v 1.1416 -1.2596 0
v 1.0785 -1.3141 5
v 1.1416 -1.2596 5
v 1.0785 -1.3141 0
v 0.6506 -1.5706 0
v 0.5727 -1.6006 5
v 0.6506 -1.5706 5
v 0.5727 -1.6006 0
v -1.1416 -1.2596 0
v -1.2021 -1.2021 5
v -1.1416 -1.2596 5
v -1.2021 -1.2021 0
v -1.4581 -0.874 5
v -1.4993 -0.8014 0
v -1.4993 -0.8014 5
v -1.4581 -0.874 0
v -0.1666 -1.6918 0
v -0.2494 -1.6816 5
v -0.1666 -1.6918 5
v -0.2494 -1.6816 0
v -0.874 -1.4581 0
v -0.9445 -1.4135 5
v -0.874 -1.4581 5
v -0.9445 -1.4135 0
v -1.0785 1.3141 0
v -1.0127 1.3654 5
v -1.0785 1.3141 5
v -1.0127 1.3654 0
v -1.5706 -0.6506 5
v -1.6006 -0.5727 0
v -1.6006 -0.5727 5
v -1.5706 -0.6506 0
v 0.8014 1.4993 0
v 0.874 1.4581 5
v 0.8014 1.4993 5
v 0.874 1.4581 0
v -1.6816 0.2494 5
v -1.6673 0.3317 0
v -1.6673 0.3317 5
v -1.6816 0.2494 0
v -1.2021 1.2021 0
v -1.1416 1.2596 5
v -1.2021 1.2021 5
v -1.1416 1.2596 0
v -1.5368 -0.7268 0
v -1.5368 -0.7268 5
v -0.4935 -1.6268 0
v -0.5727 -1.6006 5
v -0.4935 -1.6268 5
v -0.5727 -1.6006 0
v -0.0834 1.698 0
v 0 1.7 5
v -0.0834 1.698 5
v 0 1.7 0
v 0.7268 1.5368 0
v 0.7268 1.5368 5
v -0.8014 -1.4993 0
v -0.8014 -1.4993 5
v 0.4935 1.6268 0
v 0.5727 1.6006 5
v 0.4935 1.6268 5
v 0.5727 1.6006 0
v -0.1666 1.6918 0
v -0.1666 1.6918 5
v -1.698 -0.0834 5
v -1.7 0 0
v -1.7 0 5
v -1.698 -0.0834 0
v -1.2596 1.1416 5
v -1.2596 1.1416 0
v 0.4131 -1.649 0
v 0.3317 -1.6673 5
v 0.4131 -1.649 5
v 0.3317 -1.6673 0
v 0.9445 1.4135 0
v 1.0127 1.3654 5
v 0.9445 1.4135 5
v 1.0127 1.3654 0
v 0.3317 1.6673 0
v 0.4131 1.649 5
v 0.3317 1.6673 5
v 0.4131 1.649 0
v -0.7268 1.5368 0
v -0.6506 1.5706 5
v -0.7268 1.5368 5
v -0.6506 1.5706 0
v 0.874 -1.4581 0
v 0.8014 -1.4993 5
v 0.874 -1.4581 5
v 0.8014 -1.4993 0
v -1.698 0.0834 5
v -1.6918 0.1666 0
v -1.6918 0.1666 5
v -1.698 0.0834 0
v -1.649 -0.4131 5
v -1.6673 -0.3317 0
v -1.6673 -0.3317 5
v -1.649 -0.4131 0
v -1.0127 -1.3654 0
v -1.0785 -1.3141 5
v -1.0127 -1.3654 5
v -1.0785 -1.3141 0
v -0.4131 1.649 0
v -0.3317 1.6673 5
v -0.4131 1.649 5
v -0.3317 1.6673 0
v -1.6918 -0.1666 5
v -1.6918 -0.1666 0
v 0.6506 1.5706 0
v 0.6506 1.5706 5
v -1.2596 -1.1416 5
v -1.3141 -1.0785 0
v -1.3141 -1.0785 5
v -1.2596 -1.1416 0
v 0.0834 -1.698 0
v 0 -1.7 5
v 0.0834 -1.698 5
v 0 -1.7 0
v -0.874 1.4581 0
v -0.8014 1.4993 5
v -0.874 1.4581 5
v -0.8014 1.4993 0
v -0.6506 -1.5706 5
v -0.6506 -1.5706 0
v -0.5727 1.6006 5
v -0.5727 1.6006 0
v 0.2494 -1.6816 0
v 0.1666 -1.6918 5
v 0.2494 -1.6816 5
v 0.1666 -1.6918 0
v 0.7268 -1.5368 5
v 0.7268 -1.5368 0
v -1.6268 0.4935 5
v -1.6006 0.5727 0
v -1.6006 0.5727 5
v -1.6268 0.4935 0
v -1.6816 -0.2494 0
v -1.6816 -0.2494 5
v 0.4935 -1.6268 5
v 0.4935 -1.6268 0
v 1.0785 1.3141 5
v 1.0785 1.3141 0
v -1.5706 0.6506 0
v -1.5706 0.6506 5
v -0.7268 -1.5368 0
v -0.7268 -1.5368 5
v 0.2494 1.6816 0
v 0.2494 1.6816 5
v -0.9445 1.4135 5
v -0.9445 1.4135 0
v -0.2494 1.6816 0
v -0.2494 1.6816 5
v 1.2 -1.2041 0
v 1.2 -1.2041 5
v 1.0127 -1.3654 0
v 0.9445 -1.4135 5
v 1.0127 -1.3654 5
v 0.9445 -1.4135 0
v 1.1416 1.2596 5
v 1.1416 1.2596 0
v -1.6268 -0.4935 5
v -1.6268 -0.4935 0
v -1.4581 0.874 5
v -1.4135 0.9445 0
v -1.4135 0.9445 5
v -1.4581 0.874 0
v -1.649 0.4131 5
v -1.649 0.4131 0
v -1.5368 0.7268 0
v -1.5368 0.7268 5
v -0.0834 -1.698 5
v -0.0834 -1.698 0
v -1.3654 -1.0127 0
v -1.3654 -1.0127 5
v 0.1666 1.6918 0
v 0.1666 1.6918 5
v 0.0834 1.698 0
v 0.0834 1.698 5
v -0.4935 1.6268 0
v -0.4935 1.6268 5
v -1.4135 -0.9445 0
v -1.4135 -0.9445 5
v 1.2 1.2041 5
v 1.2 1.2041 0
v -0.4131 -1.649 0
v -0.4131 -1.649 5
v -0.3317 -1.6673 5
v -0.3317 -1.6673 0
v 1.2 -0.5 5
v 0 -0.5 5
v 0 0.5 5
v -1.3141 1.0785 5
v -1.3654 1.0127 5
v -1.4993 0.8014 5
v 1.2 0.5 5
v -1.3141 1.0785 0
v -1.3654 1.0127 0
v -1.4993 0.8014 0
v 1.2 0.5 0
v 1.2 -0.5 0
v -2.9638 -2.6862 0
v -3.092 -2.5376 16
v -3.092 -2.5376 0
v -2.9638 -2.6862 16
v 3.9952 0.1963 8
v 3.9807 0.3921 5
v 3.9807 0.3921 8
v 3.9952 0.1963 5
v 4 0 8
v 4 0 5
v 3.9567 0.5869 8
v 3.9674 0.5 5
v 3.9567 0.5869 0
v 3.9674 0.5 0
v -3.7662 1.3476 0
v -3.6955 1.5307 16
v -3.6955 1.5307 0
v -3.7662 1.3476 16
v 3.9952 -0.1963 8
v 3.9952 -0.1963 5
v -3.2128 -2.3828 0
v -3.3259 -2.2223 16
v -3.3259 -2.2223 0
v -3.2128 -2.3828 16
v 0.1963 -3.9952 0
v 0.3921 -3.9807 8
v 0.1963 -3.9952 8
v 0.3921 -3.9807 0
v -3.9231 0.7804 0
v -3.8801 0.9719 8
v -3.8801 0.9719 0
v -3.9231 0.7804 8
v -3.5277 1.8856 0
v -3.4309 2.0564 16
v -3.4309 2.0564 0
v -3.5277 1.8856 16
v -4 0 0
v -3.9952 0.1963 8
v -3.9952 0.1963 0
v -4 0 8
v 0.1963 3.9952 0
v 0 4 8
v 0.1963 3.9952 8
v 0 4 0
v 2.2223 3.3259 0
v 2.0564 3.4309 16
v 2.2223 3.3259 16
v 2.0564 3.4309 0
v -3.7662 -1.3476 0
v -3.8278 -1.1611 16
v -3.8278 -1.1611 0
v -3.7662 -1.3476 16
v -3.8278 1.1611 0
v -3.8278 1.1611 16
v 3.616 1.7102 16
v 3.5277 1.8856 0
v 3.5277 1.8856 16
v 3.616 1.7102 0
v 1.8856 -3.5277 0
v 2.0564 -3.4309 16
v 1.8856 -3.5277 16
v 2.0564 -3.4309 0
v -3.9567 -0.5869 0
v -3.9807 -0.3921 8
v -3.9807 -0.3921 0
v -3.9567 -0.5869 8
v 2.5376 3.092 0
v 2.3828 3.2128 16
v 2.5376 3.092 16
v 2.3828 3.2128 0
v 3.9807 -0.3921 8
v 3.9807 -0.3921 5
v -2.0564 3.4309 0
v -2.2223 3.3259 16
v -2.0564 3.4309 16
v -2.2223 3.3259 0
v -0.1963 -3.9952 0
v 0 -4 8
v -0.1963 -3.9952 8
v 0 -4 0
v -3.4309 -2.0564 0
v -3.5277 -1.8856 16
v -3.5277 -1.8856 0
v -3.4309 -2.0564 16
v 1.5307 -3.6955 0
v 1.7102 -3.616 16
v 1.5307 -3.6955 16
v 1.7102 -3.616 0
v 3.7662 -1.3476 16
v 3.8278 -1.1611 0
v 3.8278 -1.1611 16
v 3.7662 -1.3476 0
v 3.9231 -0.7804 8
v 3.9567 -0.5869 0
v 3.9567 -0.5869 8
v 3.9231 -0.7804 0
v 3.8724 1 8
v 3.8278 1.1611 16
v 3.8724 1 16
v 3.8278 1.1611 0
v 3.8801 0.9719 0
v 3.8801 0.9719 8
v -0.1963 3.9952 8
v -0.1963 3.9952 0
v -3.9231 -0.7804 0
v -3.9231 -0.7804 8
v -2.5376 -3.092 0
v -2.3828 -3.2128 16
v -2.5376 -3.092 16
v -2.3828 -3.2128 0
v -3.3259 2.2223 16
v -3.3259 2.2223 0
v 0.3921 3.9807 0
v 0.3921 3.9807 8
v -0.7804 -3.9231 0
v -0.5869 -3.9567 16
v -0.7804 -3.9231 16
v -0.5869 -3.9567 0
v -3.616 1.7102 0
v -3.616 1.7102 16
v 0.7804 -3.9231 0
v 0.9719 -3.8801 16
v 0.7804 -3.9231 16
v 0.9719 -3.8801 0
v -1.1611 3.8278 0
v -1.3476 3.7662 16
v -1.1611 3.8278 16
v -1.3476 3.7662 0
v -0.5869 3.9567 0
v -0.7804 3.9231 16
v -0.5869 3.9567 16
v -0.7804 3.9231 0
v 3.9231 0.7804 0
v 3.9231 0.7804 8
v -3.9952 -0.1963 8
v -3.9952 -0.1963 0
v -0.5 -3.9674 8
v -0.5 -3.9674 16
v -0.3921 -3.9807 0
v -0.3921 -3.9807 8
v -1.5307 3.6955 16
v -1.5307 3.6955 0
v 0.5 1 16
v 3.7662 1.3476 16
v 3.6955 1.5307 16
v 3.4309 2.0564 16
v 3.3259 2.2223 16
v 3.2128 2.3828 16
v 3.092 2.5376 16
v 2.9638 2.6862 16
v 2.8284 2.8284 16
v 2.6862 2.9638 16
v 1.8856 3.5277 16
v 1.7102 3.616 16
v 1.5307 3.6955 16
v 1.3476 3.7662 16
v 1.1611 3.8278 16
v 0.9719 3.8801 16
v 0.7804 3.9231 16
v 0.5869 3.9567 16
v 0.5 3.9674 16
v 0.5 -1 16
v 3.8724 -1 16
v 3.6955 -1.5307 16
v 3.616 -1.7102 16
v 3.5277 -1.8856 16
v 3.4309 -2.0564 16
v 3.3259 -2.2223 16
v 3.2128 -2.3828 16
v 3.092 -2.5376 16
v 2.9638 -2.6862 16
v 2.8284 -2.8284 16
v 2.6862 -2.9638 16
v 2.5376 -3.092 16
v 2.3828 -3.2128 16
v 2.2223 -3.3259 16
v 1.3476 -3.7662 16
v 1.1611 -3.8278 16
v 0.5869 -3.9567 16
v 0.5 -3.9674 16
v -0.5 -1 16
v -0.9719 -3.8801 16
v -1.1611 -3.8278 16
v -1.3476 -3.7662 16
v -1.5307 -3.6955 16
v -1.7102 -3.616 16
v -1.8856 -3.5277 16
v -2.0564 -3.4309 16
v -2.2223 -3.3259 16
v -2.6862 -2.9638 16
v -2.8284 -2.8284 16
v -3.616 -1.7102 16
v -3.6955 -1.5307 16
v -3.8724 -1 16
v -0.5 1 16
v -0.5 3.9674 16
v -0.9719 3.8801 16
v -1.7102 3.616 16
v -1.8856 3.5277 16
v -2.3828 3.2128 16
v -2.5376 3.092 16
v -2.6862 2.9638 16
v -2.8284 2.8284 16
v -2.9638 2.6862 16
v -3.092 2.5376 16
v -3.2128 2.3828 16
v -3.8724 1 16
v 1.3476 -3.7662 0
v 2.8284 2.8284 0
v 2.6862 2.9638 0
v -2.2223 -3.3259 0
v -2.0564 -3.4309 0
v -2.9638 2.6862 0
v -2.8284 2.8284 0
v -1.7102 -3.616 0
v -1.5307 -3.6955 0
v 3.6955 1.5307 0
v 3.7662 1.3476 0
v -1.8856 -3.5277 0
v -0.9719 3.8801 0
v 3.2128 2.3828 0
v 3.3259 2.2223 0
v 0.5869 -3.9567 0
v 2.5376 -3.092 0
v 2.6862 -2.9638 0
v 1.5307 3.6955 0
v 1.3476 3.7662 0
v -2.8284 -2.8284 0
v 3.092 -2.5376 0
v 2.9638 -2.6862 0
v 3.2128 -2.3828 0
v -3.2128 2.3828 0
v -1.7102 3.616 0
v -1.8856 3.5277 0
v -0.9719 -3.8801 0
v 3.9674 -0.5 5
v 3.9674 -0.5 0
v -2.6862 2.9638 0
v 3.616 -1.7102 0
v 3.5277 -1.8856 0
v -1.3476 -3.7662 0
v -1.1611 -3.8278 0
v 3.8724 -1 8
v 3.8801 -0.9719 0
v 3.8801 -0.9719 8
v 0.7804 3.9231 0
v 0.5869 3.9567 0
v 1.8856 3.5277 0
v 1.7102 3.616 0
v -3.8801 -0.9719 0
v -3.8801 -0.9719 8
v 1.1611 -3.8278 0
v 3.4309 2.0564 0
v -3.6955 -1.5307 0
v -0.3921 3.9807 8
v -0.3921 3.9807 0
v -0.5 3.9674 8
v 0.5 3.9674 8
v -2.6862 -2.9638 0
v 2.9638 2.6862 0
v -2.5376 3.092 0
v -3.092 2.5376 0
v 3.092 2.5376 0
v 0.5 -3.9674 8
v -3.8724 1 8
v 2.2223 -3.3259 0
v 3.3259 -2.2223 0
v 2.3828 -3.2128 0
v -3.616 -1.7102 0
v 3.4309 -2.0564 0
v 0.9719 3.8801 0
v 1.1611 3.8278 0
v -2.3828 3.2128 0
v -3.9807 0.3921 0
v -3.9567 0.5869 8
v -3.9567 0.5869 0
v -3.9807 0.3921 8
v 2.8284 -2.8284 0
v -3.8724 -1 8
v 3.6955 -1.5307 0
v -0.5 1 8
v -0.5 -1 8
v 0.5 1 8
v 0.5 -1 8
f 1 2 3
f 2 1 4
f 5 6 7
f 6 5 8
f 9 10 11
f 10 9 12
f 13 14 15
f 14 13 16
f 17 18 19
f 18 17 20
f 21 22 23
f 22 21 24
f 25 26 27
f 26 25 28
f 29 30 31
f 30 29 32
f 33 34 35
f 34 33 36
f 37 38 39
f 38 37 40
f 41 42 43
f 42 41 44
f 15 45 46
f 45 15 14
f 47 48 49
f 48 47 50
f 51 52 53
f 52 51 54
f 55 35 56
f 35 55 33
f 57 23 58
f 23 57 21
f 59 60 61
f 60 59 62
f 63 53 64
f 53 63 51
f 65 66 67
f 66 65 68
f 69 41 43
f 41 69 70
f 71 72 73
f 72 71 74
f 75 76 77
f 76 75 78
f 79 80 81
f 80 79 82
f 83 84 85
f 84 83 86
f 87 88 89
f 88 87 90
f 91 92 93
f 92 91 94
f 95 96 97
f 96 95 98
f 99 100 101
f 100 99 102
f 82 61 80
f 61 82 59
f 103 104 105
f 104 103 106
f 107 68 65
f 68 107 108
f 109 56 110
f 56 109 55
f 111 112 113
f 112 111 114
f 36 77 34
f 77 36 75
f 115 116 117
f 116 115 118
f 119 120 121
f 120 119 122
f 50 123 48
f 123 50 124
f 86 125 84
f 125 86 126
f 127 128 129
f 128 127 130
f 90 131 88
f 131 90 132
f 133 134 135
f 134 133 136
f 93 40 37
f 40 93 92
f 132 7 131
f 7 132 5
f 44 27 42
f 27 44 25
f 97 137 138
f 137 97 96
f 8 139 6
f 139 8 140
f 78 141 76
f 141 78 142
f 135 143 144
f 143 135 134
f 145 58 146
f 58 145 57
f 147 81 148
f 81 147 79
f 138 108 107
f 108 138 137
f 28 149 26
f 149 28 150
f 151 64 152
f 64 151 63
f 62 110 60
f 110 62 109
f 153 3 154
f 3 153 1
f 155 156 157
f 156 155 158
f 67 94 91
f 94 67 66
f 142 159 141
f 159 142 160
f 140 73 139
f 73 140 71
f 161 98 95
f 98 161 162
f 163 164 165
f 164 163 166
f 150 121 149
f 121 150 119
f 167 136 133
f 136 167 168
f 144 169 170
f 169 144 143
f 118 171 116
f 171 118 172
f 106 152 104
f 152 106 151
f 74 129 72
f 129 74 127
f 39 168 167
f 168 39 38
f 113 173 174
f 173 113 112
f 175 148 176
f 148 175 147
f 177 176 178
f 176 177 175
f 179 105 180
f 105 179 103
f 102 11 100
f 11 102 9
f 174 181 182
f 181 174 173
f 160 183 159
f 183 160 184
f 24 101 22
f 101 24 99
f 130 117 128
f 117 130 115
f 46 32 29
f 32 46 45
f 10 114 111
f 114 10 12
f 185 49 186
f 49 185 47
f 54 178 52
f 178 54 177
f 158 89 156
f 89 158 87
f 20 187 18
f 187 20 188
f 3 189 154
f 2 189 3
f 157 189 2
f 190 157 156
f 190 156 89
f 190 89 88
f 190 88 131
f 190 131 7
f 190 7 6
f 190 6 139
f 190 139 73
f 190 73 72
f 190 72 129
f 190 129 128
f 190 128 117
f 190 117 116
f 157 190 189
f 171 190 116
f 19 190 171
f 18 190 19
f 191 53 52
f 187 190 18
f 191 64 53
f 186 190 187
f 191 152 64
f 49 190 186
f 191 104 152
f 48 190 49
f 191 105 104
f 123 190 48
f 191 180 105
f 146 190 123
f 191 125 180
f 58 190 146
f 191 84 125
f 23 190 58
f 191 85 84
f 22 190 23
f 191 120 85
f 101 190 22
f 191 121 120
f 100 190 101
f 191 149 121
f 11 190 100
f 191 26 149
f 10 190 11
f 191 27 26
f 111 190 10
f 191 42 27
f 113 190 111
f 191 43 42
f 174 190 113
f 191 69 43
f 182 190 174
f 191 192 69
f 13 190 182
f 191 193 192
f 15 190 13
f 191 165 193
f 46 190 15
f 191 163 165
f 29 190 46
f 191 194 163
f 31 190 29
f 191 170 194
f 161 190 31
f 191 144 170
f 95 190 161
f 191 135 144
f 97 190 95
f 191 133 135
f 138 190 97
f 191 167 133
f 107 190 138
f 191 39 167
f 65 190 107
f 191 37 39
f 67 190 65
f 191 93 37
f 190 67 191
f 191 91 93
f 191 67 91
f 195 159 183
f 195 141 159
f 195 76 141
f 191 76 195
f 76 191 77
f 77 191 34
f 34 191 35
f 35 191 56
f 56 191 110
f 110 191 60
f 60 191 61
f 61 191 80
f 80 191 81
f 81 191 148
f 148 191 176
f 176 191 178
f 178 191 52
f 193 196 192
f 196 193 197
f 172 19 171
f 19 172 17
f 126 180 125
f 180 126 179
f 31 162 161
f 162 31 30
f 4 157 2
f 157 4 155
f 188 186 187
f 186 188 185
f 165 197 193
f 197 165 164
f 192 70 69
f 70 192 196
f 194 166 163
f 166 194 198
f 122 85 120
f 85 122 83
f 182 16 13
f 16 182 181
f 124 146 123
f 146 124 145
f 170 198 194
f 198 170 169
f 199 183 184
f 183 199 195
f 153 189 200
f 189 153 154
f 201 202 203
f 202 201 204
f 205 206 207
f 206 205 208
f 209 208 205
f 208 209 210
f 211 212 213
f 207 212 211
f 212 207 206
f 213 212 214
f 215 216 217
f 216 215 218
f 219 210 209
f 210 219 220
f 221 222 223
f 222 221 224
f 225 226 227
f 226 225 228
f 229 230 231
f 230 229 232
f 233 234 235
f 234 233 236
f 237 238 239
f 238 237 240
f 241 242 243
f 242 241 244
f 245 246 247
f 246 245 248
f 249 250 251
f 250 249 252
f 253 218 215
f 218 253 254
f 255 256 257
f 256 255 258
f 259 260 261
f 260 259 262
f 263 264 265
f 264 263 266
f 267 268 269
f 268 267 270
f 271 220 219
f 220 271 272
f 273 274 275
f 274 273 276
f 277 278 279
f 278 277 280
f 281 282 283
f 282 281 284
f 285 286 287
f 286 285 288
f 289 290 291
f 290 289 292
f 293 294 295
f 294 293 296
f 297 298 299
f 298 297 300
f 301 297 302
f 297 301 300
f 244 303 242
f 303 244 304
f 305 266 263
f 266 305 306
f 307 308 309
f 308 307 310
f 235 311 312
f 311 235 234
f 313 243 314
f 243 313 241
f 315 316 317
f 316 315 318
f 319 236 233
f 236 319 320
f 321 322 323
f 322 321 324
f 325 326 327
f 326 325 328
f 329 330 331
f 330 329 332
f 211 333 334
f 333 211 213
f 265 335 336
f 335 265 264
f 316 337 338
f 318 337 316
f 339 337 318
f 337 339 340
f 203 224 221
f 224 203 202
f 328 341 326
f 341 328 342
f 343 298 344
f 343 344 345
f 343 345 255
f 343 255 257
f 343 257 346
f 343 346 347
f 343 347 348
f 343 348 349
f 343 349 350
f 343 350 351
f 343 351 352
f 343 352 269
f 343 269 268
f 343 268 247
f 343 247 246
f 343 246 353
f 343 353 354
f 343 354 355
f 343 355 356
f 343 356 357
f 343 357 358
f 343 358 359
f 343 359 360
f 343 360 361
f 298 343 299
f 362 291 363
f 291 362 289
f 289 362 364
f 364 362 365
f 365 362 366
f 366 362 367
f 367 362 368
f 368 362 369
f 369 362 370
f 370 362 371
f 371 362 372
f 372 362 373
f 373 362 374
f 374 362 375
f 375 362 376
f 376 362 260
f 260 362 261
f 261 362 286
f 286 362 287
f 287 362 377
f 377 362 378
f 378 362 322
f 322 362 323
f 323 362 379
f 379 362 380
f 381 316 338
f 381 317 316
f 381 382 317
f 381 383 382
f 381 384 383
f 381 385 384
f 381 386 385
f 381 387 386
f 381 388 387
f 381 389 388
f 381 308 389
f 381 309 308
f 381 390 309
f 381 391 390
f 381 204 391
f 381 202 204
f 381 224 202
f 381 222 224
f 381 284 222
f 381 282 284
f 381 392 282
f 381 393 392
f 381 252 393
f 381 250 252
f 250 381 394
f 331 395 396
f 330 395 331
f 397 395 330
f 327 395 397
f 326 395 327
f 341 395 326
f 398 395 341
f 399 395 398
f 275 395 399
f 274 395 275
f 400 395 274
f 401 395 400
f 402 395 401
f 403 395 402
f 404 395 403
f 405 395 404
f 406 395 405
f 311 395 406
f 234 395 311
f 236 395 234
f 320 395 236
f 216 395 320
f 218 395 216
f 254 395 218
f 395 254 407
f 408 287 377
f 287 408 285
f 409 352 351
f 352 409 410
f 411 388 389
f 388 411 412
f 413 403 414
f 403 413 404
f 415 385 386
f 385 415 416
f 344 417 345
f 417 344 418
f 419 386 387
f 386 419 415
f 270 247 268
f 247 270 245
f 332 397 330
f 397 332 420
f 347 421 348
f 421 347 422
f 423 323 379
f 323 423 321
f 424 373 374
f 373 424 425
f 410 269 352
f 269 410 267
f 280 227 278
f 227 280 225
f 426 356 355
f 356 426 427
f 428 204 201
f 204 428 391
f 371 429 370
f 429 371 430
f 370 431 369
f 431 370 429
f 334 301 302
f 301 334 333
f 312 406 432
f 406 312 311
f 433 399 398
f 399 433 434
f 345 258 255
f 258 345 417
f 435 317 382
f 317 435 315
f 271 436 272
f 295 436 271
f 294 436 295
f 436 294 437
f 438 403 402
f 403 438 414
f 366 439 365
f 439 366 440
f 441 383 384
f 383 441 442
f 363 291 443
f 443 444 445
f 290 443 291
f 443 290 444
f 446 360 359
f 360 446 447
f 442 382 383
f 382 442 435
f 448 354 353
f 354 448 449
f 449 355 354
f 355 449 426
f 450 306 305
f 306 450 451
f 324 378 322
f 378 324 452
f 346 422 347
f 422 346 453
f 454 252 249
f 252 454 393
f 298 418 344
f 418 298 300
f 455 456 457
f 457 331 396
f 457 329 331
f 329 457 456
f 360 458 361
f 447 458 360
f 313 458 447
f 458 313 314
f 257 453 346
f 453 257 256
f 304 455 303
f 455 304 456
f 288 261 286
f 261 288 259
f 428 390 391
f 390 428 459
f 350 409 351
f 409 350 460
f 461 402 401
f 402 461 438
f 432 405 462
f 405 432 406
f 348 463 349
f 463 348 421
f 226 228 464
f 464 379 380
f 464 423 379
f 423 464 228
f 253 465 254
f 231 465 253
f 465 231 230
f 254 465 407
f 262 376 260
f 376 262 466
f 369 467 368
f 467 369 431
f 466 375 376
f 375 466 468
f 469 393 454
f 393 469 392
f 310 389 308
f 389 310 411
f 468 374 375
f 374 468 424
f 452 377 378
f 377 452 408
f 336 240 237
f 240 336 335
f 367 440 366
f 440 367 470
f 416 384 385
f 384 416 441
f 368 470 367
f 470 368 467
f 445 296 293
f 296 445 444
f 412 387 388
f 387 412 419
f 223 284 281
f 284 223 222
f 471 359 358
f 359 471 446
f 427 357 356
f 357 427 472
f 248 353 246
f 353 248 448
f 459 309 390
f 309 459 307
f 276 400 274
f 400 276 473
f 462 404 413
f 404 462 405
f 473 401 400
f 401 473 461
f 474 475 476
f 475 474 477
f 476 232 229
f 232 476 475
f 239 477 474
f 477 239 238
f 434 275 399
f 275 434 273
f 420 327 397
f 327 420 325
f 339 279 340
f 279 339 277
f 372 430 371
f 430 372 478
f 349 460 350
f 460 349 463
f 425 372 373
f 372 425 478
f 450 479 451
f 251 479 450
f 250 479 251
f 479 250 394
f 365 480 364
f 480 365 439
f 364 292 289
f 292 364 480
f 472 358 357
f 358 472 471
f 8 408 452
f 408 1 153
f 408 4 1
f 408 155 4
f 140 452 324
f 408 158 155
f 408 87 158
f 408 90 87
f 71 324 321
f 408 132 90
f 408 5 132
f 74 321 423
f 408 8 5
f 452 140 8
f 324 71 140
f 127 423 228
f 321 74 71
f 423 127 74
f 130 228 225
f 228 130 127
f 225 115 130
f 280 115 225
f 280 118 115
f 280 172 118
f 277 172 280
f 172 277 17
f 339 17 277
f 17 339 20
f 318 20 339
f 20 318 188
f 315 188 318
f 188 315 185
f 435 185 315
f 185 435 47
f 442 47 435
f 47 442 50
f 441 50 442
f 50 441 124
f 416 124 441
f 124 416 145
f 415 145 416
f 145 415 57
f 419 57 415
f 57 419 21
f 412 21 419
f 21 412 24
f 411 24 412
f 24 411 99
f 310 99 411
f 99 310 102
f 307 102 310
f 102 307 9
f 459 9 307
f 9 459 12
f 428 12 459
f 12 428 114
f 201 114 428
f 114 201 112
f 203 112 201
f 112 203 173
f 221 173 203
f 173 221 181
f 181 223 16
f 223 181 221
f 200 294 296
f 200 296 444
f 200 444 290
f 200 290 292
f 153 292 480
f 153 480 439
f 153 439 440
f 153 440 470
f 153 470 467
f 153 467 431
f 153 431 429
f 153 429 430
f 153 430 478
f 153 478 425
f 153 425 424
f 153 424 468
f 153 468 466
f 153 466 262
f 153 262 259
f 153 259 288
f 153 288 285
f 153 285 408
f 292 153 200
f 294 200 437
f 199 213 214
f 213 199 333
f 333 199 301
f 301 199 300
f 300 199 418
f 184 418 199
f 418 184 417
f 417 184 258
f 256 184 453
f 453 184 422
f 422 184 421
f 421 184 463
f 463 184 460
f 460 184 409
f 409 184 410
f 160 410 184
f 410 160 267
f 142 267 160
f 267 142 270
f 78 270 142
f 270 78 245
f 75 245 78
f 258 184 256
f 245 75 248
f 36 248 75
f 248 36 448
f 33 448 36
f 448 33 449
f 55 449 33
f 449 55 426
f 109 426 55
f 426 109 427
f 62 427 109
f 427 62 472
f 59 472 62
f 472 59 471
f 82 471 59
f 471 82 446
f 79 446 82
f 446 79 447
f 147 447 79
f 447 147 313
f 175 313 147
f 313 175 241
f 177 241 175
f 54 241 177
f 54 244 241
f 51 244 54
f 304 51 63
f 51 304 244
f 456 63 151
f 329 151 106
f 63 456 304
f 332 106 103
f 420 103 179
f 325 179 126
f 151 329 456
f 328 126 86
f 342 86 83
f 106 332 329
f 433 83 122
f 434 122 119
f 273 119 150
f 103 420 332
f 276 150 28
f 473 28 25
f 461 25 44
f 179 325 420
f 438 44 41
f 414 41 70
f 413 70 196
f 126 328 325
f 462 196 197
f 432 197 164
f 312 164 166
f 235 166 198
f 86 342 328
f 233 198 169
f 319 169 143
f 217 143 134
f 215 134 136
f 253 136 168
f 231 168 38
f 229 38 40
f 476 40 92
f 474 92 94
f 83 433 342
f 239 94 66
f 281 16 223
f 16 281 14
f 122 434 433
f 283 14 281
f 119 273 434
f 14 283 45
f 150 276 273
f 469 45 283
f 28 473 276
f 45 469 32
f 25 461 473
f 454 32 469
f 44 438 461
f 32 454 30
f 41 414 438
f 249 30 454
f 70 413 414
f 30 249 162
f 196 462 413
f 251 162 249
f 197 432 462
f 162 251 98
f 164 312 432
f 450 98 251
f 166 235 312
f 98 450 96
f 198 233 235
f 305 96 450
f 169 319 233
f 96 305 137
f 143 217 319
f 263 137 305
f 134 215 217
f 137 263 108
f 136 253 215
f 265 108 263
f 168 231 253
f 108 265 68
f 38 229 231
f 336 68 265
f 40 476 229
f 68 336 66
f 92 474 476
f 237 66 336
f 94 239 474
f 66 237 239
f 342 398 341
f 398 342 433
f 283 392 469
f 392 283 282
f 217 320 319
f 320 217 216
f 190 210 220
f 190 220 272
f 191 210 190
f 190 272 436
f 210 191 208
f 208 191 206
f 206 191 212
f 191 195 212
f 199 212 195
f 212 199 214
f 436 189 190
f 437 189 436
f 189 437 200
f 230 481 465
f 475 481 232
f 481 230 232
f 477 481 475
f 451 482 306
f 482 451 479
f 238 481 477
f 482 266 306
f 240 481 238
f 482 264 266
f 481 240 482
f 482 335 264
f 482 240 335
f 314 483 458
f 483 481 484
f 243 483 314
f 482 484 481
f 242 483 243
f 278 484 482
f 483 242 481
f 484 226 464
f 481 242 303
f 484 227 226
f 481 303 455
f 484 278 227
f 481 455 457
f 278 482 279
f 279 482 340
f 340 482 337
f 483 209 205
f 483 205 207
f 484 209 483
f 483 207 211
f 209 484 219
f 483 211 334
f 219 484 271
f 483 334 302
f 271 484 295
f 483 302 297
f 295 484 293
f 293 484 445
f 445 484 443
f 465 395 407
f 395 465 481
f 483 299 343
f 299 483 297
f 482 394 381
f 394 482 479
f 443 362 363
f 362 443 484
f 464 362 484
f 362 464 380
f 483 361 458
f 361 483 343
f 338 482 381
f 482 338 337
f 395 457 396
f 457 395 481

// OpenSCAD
// N20 90-degree holder — V4, total length 16 mm
// Axial layout: 5 mm motor socket + 3 mm solid transition + 8 mm material slots
// Units: mm
$fn = 128;

body_d = 8.0;
motor_section = 5.0;
solid_section = 3.0;
slot_section = 8.0;
body_h = motor_section + solid_section + slot_section; // 16 mm

// Same motor-side fit as V3
shaft_d = 3.40;
shaft_flat = 0.50;
shaft_depth = motor_section;
motor_relief_w = 1.0;

// Material side: same cross widths, now occupying its own 8 mm section
cross_wide_w = 2.0;
cross_narrow_w = 1.0;
cross_depth = slot_section;

eps = 0.05;

module d_socket(d, flat, depth) {
    r = d/2;
    flat_x = r-flat;
    intersection() {
        cylinder(d=d, h=depth+eps);
        translate([-r-eps,-r-eps,-eps])
            cube([flat_x+r+eps, d+2*eps, depth+2*eps]);
    }
}

difference() {
    cylinder(d=body_d, h=body_h);

    // Bottom 5 mm: motor D socket
    translate([0,0,-eps])
        d_socket(shaft_d, shaft_flat, shaft_depth);

    // Bottom 5 mm: single 1 mm radial relief slit
    translate([0,-motor_relief_w/2,-eps])
        cube([body_d/2+eps, motor_relief_w, shaft_depth+eps]);

    // Top 8 mm: 2 mm slot
    translate([-body_d/2-eps,-cross_wide_w/2,body_h-cross_depth])
        cube([body_d+2*eps,cross_wide_w,cross_depth+eps]);

    // Top 8 mm: perpendicular 1 mm slot
    translate([-cross_narrow_w/2,-body_d/2-eps,body_h-cross_depth])
        cube([cross_narrow_w,body_d+2*eps,cross_depth+eps]);
}
